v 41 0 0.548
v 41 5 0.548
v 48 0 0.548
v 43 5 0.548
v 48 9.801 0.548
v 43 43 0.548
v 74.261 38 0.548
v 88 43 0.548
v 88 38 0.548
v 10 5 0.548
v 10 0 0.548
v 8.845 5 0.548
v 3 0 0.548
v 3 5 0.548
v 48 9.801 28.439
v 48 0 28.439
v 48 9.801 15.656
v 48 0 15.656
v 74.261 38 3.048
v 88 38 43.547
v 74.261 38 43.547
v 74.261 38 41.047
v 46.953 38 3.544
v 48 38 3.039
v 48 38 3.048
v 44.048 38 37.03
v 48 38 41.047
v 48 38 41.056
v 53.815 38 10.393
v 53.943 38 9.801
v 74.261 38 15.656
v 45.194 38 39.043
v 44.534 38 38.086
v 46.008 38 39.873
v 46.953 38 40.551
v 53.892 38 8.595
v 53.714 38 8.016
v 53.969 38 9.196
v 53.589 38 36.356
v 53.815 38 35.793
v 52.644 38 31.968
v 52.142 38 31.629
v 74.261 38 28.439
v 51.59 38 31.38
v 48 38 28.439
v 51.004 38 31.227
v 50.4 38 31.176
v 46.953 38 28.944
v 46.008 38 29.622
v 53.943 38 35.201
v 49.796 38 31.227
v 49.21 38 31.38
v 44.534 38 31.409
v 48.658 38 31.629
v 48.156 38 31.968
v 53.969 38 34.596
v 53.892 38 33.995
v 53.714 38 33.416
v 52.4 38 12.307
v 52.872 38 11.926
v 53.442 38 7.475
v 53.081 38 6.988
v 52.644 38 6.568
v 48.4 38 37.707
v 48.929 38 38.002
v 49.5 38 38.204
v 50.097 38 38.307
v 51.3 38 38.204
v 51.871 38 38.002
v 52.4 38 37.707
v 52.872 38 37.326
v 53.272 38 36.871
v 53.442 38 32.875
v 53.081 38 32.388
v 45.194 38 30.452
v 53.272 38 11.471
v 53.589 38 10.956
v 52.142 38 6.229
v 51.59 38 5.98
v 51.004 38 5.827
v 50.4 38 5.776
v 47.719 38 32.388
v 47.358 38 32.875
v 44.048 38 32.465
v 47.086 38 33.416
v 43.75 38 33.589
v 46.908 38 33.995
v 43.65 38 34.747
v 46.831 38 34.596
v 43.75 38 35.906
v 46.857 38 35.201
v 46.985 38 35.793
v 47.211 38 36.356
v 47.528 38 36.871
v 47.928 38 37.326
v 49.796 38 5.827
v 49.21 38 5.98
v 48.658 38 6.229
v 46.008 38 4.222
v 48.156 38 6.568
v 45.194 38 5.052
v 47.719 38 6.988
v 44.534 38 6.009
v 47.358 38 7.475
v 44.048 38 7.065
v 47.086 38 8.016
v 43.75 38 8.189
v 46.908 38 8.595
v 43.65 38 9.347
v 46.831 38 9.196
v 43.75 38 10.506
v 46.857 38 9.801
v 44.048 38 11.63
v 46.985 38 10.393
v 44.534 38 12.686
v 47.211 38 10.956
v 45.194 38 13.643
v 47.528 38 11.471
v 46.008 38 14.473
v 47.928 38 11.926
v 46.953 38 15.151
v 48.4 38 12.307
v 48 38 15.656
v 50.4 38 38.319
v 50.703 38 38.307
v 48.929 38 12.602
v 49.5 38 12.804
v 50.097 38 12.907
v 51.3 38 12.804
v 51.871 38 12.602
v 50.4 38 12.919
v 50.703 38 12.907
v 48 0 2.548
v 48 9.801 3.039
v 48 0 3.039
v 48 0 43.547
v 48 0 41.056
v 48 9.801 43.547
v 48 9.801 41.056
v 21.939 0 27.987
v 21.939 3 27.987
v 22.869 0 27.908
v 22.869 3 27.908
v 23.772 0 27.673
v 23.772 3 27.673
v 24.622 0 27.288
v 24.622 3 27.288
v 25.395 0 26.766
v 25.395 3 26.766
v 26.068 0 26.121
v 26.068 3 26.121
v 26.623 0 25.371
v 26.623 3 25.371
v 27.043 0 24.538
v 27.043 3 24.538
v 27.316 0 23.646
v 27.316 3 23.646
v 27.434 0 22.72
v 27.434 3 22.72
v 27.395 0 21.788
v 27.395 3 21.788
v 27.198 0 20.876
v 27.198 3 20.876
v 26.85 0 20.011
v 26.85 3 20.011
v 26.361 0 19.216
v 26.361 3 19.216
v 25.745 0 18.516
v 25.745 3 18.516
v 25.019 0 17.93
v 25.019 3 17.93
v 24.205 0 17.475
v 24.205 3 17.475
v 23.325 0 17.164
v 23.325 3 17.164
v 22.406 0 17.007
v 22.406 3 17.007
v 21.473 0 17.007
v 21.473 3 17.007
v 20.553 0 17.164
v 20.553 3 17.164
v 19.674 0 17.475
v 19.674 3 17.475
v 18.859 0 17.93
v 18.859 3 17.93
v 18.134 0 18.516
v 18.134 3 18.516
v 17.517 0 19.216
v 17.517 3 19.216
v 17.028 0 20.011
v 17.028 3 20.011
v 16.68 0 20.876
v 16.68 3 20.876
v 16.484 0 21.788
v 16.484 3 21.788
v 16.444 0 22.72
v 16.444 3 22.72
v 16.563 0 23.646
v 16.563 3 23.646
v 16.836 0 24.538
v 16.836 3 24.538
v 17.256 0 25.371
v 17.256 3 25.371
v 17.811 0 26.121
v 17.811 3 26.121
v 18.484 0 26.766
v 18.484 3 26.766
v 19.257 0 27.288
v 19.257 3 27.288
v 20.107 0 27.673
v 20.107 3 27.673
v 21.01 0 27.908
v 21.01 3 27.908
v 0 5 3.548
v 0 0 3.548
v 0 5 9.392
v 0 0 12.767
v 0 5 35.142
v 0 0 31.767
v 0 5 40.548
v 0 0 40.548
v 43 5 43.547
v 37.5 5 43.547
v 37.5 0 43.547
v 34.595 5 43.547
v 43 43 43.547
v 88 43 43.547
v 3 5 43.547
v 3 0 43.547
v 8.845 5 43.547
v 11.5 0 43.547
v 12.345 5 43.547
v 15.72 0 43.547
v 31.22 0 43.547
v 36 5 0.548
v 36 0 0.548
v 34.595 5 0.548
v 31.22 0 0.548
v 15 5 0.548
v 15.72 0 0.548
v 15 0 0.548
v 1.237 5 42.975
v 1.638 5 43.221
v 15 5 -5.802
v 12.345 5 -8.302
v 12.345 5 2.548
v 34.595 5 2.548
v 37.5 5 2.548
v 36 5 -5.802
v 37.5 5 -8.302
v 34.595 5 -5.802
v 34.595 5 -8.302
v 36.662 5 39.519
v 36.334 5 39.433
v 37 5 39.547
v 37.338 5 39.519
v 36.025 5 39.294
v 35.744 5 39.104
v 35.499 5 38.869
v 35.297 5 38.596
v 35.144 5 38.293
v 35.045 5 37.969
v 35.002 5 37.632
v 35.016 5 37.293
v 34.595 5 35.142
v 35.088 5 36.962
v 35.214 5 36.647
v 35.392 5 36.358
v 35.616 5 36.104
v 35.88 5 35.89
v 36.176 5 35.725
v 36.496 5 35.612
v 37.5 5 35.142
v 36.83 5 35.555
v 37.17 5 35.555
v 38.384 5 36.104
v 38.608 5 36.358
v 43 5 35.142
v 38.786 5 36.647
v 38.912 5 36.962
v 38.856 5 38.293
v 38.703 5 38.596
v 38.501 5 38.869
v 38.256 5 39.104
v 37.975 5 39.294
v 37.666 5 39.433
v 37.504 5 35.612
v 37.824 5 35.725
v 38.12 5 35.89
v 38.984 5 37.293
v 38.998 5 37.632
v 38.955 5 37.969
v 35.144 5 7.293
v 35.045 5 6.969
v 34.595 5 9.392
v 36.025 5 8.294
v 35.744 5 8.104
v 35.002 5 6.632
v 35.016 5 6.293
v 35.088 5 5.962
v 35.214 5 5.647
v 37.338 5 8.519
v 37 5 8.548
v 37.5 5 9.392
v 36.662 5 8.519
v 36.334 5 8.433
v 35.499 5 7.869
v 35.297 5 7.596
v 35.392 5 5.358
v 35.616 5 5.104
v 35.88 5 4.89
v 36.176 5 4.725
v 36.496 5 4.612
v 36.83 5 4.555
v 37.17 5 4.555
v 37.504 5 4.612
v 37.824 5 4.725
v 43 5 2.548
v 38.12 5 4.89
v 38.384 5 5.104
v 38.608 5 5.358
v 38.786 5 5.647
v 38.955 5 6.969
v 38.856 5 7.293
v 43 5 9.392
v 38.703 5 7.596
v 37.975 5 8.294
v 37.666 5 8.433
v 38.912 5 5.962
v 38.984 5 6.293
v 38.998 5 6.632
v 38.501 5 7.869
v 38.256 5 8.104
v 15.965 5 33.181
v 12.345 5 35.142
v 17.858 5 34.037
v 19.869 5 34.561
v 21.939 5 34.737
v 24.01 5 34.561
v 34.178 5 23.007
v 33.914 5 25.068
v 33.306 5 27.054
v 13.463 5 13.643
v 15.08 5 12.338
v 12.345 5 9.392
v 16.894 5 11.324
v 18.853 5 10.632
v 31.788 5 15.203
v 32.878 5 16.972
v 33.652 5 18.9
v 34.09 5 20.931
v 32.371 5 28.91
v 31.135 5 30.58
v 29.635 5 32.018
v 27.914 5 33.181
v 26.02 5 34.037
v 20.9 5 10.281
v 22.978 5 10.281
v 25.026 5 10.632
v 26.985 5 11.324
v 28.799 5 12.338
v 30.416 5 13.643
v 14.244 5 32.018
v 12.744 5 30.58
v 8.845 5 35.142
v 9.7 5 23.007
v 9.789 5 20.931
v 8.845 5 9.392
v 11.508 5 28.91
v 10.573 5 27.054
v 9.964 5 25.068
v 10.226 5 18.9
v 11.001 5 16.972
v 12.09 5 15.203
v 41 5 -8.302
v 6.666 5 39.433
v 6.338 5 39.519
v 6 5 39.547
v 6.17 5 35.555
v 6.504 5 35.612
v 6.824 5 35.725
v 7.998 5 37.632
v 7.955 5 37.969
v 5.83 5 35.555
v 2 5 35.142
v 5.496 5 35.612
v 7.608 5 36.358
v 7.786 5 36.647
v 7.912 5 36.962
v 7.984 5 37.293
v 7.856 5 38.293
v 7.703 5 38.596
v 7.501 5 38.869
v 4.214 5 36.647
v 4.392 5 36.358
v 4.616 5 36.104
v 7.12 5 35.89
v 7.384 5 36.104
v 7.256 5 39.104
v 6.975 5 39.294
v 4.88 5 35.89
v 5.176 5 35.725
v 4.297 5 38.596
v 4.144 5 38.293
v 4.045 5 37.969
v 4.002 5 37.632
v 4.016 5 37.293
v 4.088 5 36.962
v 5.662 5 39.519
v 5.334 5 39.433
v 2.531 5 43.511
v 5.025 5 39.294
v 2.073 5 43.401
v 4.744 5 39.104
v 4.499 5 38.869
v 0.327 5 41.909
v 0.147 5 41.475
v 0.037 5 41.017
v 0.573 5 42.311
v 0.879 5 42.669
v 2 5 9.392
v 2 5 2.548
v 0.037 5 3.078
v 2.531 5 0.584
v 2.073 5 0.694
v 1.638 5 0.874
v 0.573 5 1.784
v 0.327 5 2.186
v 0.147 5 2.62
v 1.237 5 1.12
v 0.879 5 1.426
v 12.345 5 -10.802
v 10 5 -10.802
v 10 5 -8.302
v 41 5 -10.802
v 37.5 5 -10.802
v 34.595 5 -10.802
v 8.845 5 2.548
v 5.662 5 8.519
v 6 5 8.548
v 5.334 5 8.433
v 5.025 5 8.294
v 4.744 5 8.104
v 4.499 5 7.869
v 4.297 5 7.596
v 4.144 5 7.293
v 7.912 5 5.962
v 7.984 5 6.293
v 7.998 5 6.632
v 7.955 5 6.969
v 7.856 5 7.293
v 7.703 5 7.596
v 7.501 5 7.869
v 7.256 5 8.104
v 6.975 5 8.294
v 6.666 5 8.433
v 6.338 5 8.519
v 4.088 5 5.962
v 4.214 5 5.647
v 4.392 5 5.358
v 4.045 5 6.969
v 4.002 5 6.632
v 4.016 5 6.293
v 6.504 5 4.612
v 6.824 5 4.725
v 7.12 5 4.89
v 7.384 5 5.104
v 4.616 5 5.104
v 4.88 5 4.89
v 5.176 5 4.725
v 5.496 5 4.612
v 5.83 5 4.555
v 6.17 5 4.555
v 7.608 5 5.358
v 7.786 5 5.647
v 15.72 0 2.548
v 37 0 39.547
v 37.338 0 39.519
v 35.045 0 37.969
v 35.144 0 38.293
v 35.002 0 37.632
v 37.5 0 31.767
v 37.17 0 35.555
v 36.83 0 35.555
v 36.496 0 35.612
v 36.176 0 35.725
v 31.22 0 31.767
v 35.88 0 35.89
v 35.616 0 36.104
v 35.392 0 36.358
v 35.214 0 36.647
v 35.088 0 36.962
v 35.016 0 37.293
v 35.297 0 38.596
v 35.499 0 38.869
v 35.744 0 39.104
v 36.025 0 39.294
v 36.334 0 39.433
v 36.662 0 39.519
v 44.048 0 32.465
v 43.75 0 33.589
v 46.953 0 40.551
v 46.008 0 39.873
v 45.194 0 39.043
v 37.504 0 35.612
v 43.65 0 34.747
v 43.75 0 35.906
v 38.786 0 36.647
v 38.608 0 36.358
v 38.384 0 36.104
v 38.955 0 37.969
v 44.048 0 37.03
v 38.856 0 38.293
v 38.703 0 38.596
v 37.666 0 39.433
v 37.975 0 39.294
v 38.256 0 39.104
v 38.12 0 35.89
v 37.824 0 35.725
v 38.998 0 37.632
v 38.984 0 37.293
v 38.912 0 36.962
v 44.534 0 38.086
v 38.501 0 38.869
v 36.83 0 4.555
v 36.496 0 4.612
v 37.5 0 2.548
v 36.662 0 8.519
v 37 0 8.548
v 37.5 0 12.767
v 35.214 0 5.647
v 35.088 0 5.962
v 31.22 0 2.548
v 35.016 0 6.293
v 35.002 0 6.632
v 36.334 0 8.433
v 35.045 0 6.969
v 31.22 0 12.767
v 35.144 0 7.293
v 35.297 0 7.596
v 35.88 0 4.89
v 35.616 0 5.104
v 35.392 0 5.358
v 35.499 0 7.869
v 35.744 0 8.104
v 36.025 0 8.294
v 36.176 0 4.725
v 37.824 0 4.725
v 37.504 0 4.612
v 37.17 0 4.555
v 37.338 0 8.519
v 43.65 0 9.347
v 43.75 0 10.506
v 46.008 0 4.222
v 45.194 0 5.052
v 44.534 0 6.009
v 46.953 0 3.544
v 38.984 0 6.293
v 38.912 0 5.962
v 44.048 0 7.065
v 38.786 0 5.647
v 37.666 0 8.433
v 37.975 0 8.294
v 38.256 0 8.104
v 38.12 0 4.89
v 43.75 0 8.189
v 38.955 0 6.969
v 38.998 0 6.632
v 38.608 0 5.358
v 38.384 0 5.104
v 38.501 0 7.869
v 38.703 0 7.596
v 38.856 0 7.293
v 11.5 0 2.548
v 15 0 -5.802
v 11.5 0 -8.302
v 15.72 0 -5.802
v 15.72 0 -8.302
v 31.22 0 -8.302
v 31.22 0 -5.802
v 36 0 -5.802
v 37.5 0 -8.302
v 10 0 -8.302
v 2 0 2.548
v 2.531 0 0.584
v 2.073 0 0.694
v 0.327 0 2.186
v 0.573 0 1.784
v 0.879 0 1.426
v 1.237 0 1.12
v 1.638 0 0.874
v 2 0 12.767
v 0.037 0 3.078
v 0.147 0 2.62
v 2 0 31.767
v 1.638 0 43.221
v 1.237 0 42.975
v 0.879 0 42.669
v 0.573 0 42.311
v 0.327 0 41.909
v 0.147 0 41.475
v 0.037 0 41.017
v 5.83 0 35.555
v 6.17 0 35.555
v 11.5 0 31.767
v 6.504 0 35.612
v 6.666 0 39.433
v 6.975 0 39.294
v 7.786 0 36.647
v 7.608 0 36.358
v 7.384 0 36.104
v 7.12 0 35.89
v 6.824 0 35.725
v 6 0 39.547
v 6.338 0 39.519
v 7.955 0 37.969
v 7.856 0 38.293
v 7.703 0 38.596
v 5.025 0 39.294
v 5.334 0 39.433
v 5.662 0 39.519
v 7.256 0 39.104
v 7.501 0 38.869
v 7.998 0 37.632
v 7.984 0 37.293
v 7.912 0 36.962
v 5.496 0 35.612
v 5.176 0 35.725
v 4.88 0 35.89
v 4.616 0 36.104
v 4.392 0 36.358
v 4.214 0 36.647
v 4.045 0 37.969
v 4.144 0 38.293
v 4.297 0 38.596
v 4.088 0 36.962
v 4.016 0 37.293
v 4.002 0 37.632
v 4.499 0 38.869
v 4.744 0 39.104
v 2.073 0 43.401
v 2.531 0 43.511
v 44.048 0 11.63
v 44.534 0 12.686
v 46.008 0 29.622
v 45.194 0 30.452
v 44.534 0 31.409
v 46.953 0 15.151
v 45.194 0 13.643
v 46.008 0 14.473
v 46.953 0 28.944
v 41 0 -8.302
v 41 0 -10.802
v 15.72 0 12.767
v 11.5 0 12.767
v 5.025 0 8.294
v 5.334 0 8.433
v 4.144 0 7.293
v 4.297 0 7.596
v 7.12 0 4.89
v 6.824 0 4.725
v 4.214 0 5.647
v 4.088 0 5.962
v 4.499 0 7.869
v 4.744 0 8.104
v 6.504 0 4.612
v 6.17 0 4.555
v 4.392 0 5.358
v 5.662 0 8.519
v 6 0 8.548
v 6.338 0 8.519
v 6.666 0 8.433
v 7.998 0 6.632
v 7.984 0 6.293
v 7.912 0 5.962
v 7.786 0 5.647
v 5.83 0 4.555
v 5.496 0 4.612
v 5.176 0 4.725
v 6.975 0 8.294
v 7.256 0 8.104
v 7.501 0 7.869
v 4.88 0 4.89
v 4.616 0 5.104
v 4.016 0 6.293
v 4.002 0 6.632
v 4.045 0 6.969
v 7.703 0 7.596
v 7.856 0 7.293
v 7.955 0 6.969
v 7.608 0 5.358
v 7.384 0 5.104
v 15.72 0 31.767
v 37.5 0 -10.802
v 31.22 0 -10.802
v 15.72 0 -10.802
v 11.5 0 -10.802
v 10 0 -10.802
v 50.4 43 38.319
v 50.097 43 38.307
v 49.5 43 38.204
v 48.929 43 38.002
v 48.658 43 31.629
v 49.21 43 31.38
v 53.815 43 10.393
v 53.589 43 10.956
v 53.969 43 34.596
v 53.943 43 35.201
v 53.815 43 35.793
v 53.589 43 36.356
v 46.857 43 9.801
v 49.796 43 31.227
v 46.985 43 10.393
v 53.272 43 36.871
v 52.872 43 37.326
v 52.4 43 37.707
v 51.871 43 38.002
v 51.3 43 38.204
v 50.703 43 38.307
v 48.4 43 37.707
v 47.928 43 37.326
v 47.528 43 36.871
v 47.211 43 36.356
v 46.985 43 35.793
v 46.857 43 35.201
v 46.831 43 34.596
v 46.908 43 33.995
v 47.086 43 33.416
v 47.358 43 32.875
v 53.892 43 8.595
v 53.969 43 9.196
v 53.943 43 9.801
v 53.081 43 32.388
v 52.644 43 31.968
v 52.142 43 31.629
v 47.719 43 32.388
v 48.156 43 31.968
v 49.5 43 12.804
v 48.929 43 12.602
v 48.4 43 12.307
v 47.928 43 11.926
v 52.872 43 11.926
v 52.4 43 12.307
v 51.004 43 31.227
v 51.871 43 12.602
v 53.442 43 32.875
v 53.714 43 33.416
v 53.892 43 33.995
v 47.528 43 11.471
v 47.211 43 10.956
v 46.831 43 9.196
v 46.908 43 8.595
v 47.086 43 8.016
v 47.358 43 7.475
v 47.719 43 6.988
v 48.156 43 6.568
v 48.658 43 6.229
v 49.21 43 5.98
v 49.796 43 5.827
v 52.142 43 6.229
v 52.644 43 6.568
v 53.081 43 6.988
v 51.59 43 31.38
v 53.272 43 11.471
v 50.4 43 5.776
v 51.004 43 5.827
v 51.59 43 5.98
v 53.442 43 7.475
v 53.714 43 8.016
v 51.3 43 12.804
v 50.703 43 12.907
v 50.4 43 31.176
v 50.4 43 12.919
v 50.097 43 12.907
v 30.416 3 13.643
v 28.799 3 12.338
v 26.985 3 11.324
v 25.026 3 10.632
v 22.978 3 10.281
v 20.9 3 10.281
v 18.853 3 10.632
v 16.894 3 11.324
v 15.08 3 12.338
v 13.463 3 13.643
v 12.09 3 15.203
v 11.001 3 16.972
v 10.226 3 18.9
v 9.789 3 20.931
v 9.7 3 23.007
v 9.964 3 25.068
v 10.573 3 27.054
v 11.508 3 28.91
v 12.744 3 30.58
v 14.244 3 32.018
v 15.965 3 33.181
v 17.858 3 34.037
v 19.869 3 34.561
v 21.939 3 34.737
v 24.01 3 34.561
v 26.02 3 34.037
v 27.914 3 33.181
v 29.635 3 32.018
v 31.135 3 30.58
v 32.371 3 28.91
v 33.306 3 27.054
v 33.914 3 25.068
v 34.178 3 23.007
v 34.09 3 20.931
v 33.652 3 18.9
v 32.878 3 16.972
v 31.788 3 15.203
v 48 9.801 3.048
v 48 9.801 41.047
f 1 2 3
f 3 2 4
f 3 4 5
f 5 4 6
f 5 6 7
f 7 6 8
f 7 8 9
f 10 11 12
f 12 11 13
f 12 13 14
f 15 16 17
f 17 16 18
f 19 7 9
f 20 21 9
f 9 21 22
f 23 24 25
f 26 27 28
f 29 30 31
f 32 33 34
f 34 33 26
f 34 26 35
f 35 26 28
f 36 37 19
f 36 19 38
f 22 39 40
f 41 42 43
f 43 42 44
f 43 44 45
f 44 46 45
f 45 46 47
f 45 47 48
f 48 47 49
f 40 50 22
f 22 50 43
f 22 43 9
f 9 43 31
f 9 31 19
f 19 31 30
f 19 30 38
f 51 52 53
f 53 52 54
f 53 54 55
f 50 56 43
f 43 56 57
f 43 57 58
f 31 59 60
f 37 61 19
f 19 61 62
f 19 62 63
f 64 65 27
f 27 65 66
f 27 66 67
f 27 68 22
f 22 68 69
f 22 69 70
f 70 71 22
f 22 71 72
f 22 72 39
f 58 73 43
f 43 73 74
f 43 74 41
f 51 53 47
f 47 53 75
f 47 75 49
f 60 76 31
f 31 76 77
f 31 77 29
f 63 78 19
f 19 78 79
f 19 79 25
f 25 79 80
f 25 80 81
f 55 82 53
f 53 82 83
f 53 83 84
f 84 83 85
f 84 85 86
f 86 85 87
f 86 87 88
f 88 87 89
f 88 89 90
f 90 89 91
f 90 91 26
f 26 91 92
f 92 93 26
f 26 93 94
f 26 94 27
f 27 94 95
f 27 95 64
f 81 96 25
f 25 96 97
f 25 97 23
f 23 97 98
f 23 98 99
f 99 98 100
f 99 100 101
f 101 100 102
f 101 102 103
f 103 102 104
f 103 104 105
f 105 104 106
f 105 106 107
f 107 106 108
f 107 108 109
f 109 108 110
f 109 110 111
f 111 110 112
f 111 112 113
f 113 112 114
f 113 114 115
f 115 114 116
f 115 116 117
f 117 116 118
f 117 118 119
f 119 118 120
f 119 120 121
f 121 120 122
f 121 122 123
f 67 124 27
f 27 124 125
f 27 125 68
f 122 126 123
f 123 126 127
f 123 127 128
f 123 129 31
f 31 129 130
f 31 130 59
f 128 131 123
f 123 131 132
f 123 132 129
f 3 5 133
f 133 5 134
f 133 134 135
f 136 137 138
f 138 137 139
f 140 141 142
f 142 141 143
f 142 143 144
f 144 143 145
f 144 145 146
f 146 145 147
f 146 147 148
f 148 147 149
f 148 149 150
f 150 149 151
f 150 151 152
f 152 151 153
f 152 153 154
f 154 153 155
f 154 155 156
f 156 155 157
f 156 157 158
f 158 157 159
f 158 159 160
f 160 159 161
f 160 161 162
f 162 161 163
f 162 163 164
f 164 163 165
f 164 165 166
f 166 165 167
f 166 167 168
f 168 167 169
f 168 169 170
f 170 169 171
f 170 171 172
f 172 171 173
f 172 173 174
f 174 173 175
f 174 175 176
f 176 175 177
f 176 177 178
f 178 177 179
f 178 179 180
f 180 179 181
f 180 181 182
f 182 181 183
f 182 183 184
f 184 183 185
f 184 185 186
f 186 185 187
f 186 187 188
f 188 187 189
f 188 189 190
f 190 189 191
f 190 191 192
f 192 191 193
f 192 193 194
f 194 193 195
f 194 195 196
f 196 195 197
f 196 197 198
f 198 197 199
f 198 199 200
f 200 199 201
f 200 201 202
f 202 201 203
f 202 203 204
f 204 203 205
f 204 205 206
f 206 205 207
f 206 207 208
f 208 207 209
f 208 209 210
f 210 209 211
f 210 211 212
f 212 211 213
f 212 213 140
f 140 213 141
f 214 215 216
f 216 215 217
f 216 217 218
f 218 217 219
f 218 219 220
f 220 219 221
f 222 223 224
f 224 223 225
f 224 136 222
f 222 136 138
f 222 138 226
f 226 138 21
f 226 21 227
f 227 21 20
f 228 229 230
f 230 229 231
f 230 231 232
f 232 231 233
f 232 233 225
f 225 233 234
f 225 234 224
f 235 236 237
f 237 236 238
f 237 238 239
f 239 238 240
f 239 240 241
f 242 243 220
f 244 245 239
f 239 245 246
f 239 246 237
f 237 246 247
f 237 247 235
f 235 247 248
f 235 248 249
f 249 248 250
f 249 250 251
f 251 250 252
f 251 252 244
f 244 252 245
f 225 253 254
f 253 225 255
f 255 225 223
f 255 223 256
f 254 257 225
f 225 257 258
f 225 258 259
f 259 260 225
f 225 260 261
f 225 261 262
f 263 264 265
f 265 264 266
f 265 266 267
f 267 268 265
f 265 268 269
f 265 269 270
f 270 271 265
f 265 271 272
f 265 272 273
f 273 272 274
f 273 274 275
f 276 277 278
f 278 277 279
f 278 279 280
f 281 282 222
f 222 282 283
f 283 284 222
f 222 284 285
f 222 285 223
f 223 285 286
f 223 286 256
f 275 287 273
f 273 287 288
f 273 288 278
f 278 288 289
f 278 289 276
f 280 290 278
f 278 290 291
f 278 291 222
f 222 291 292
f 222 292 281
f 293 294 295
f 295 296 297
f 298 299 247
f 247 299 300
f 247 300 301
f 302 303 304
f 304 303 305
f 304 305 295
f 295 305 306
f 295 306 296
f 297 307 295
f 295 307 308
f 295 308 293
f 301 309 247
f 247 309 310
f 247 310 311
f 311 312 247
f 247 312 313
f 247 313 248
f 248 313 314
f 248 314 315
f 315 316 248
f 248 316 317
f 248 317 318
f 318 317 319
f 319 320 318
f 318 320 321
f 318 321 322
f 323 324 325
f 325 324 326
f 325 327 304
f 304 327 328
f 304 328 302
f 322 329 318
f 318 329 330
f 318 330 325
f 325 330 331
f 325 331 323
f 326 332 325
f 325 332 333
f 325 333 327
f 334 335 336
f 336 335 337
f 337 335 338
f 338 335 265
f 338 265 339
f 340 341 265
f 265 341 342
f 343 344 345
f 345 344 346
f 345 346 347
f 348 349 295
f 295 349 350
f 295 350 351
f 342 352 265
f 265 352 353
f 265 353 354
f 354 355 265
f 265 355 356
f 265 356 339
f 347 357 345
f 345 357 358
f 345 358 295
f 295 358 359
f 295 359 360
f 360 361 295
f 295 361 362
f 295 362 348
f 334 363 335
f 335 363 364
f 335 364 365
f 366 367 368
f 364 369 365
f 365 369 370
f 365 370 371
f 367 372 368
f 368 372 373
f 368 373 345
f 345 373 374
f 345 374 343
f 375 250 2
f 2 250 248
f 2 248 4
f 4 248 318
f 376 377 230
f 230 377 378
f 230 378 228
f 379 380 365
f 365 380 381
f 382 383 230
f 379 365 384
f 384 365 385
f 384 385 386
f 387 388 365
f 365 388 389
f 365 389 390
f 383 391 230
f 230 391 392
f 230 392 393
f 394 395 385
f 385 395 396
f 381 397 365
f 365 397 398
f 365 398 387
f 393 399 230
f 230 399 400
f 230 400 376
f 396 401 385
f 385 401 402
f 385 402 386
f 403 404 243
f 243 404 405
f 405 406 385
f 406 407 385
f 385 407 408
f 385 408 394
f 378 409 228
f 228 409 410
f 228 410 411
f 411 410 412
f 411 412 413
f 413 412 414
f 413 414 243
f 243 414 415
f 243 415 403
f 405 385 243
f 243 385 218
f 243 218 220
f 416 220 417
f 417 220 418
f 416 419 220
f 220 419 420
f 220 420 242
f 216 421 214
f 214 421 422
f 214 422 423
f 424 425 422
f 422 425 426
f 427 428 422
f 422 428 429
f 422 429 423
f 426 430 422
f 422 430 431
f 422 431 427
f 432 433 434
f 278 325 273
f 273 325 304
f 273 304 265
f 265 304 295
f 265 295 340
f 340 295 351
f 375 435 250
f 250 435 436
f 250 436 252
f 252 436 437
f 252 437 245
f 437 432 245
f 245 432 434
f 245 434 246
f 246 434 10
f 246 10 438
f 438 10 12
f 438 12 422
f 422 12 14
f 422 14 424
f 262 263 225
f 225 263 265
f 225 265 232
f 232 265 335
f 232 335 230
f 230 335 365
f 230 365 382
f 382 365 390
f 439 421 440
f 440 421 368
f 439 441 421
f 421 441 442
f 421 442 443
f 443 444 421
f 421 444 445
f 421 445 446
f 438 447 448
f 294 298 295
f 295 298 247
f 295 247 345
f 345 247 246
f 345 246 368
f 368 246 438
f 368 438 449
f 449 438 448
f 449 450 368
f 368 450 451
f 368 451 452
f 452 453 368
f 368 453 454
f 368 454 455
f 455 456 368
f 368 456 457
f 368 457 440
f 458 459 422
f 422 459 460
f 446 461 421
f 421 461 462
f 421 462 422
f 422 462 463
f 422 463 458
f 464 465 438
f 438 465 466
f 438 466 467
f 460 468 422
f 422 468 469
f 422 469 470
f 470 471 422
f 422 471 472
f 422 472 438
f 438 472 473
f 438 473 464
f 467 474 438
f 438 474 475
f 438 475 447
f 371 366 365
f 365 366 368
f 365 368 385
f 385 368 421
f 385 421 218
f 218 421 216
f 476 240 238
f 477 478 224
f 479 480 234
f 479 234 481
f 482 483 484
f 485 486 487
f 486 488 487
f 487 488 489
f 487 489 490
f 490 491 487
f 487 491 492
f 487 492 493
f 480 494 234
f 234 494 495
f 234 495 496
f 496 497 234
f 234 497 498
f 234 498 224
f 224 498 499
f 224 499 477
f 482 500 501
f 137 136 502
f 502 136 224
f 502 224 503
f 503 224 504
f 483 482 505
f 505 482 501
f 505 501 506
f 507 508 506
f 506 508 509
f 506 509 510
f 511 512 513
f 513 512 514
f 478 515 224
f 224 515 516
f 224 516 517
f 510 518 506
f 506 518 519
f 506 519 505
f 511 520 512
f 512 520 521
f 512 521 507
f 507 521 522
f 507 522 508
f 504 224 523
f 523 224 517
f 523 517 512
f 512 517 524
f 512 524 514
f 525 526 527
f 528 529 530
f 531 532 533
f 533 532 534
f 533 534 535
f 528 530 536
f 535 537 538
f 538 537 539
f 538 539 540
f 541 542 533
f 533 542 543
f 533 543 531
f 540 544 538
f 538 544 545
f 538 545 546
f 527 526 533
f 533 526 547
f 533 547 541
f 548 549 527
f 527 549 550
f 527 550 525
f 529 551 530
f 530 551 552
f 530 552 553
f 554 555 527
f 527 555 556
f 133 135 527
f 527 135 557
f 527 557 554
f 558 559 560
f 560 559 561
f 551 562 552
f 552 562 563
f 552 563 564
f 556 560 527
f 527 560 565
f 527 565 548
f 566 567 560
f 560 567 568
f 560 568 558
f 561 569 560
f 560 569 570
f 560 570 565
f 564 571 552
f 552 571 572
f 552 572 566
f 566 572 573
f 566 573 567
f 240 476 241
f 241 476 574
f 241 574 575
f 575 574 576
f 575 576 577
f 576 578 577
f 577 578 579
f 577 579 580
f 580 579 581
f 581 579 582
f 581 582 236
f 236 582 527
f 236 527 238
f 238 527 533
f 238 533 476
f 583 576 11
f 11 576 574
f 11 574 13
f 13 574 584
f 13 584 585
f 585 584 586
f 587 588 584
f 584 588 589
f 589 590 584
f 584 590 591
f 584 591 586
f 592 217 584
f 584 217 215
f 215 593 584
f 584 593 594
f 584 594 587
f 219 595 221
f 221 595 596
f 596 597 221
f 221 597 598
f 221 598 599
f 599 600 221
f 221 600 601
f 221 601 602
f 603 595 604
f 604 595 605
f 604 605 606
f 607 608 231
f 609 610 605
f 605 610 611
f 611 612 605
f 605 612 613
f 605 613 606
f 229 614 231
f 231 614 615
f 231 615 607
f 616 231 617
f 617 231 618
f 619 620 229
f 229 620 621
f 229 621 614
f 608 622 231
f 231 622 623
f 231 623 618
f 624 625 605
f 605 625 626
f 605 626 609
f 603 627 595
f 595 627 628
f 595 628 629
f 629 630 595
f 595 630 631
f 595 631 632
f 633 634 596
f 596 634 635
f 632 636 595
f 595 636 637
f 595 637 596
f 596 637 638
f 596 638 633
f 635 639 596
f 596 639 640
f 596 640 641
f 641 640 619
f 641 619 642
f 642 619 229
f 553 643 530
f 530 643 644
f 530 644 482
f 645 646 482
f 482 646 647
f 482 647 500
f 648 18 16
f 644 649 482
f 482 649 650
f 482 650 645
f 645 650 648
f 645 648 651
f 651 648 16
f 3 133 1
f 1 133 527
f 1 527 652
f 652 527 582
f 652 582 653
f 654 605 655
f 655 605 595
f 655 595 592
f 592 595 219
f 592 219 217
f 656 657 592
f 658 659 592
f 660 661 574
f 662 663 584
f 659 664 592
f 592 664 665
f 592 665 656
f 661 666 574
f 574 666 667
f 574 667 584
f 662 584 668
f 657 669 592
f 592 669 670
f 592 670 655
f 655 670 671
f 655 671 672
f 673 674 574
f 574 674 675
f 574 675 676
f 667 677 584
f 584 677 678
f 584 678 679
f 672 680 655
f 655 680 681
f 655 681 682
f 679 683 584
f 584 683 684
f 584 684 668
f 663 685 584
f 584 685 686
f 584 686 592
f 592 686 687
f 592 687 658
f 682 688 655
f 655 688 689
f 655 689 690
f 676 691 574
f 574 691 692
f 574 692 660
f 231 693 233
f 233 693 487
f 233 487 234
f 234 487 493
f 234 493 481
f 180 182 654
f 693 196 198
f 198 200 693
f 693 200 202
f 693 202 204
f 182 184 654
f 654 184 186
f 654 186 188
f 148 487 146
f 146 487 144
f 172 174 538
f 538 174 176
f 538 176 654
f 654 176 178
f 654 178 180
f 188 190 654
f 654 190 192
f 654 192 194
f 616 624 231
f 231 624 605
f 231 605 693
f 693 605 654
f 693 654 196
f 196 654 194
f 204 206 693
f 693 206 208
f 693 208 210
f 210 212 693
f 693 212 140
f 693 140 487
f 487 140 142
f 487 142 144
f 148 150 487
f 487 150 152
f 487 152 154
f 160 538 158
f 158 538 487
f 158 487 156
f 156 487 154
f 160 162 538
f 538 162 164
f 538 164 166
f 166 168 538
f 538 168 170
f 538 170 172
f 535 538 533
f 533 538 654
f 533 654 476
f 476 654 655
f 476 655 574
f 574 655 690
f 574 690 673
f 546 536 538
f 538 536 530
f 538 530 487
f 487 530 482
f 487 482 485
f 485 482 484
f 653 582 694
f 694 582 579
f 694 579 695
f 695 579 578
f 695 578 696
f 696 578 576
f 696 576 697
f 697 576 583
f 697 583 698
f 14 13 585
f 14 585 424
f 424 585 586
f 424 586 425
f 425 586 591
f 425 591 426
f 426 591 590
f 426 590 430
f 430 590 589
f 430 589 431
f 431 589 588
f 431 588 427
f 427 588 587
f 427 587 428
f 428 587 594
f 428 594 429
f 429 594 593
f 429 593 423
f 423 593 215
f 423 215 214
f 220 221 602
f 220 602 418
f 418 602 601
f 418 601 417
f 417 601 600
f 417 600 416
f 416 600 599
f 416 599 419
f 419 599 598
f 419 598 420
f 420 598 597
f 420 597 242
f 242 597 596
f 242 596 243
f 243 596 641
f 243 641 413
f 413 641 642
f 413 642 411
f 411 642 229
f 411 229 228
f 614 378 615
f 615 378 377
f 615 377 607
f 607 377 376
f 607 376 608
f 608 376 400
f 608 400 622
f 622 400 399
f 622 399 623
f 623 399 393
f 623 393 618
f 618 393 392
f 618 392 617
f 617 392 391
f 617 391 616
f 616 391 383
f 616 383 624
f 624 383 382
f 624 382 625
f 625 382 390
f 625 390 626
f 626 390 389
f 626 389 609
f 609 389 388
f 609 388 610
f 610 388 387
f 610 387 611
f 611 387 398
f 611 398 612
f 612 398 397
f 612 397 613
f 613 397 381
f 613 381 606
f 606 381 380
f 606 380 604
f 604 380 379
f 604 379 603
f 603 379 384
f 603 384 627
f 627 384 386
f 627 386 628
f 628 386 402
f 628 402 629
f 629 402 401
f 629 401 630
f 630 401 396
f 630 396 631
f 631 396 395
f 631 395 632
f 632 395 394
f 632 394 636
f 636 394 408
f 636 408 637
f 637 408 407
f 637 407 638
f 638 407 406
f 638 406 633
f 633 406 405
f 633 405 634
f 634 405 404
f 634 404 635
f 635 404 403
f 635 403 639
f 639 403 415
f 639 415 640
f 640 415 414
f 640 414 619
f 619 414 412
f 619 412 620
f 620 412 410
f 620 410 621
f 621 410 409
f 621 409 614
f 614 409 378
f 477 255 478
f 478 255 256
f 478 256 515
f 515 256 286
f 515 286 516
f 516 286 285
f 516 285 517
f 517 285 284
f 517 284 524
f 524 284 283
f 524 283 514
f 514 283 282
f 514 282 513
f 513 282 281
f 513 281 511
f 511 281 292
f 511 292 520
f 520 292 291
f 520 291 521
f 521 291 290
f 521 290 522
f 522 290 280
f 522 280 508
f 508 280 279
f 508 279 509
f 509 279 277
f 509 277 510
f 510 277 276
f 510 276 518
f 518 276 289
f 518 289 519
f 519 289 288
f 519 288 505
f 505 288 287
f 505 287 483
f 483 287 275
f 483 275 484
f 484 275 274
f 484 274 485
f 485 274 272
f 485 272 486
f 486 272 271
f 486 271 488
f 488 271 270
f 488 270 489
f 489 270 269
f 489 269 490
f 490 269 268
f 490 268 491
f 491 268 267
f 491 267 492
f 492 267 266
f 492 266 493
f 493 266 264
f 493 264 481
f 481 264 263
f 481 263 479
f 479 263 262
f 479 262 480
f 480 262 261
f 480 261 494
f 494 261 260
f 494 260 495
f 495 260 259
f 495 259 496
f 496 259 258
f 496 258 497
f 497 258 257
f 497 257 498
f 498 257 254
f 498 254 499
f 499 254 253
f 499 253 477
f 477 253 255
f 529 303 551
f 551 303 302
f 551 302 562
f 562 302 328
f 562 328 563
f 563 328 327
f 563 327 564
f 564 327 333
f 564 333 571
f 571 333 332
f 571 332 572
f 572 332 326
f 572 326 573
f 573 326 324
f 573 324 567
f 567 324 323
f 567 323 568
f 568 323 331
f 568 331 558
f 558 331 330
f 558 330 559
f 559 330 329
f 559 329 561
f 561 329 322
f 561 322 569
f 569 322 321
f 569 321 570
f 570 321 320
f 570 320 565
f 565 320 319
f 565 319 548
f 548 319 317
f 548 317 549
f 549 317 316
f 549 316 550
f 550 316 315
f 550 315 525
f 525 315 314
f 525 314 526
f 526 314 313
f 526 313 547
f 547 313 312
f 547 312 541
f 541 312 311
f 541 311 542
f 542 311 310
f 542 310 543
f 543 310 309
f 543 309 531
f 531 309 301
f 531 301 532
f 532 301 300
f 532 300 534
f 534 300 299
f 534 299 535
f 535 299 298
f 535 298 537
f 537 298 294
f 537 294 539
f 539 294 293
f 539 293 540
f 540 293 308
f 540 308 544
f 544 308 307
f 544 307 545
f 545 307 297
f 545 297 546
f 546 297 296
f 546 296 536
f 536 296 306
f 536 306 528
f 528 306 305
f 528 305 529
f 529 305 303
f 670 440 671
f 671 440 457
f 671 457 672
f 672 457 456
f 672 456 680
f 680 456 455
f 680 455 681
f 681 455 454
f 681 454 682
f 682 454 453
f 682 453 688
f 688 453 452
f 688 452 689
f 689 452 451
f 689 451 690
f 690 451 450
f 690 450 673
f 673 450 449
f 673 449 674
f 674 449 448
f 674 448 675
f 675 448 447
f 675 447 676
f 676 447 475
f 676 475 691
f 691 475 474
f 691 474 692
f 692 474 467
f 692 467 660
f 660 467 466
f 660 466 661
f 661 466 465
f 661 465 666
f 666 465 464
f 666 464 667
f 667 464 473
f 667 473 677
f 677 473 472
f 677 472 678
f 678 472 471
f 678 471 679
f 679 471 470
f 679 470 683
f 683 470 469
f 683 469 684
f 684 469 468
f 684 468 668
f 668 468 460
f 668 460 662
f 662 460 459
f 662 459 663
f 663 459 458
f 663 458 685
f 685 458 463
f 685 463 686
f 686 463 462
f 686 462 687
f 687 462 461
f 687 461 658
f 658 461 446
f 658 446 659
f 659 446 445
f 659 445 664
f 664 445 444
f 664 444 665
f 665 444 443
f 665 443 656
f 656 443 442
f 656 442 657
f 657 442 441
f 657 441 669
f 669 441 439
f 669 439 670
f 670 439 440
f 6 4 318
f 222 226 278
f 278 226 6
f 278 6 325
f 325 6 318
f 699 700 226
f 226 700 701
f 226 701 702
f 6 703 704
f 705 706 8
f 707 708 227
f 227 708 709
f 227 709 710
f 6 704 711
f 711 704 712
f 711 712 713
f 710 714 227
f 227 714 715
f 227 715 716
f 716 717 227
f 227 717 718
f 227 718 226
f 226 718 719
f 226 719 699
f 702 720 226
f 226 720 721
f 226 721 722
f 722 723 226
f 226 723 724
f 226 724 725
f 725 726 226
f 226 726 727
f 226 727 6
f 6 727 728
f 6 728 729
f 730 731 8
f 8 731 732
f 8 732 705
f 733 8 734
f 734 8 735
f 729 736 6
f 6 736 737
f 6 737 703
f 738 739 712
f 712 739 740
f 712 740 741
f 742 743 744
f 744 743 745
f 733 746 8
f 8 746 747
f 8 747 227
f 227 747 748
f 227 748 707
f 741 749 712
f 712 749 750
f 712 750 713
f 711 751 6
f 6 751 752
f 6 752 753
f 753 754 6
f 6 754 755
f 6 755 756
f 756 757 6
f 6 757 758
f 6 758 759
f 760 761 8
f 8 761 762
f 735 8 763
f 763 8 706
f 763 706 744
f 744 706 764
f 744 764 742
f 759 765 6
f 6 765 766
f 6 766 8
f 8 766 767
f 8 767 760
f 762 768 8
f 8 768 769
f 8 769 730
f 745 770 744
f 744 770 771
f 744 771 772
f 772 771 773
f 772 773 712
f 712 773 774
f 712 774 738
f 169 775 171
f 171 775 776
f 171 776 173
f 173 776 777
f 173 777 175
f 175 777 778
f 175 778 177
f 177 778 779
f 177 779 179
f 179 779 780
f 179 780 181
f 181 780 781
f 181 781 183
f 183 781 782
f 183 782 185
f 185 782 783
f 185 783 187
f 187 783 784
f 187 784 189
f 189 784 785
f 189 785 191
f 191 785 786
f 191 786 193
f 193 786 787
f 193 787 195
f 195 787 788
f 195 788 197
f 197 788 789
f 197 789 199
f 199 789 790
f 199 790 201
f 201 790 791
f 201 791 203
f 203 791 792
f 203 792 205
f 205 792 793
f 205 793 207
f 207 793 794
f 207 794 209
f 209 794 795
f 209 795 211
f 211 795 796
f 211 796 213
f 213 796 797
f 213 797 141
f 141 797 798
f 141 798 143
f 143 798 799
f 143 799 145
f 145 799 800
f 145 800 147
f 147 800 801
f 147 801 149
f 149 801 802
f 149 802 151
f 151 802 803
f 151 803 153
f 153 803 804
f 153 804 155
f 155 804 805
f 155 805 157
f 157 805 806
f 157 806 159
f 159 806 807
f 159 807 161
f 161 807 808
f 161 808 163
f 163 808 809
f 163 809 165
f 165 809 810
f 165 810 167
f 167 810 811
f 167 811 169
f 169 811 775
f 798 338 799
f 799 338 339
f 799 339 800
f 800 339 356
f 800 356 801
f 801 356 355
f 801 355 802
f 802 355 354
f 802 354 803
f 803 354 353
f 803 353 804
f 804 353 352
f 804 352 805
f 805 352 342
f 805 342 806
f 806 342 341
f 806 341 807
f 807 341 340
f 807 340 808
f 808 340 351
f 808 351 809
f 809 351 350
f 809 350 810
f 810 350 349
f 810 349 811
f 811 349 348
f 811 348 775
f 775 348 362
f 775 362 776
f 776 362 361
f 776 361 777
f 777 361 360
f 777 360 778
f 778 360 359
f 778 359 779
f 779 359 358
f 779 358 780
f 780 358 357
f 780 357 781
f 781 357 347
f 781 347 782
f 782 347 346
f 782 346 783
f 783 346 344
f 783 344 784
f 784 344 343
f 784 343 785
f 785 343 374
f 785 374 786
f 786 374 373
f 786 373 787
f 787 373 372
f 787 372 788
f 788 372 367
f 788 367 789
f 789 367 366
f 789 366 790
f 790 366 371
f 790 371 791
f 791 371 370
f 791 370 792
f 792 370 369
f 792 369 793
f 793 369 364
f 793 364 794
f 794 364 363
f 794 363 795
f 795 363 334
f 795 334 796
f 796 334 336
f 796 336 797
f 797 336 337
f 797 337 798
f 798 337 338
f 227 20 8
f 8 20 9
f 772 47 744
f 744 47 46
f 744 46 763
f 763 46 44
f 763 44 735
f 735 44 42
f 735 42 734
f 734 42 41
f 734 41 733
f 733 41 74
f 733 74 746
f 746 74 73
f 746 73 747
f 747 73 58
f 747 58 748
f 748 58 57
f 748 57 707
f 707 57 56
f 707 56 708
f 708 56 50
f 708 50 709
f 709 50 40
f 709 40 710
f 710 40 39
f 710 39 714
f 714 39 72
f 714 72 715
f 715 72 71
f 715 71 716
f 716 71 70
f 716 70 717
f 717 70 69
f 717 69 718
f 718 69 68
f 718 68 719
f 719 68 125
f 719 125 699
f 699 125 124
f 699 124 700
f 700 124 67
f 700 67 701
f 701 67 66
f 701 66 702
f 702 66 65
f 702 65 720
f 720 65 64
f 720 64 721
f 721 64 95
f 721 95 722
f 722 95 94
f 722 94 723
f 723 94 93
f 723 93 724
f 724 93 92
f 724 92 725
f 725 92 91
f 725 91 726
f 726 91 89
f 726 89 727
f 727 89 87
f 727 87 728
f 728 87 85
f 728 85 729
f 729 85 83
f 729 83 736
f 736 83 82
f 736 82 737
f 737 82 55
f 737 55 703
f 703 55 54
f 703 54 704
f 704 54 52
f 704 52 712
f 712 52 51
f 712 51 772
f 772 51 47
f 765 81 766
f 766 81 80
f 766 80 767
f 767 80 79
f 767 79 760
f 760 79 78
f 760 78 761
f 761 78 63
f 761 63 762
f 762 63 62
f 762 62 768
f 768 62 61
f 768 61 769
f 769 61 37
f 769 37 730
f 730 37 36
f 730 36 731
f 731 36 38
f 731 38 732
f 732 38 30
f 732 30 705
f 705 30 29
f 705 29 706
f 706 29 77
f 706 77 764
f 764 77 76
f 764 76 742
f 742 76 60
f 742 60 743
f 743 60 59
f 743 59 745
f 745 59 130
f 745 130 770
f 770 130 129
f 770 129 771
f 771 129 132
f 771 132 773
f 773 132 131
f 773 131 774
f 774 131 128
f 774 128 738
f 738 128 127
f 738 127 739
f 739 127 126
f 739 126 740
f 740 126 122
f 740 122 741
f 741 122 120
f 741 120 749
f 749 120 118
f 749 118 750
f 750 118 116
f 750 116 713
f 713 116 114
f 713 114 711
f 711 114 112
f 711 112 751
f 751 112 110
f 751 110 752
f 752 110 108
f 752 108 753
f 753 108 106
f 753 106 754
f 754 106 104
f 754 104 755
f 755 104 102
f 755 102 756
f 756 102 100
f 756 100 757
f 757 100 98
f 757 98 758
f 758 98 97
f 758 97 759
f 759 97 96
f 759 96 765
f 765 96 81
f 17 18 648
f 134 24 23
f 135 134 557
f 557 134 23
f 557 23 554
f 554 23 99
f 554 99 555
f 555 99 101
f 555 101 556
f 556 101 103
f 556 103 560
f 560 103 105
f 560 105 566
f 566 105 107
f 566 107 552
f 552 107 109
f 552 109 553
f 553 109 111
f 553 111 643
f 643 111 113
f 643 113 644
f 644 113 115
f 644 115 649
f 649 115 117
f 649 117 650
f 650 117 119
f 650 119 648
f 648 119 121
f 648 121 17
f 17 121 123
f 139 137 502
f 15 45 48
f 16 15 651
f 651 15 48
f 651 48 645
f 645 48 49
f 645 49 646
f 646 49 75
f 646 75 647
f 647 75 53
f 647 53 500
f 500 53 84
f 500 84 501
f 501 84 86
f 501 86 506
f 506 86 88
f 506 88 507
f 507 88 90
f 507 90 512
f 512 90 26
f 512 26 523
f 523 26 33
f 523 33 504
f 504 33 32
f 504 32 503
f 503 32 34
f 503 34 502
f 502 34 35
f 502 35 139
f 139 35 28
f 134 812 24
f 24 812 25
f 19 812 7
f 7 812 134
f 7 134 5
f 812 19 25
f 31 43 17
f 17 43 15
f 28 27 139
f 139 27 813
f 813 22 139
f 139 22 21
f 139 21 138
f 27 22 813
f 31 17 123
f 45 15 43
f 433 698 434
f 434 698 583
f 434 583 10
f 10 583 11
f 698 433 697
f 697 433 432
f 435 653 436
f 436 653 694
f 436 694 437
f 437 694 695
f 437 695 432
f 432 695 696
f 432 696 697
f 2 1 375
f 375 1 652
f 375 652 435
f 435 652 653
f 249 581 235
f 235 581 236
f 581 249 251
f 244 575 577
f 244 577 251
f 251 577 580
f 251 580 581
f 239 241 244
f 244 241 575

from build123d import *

# Parameters (mm, degrees)
SKETCH1_W                 = 43
SKETCH1_H                 = 43
BOSS_EXTRUDE1_DEPTH       = 5
FILLET1_R                 = 3
F_4_0MM_DOWEL_HOLE1_D     = 4
F_4_0MM_DOWEL_HOLE1_DEPTH = 10
F_4_0MM_DOWEL_HOLE1_TIP   = 1.201721238
SKETCH5_R                 = 5.5
CUT_EXTRUDE1_DEPTH        = 5
SKETCH6_W                 = 5
SKETCH6_H                 = 43
BOSS_EXTRUDE2_DEPTH       = 38
BOSS_EXTRUDE2_DEPTH_BACK  = 5
CUT_EXTRUDE4_START        = -5
SKETCH11_R                = 12.25
CUT_EXTRUDE4_DEPTH        = 2
SKETCH12_W                = 43
SKETCH12_H                = 5
BOSS_EXTRUDE3_DEPTH       = 40
SKETCH13_R                = 3.571875
CUT_EXTRUDE5_DEPTH        = 10
SKETCH15_R                = 6.75
CUT_EXTRUDE6_DEPTH        = 38
BOSS_EXTRUDE4_DEPTH       = 2.5
LPATTERN1_COUNT           = 3
LPATTERN1_PITCH           = 20.25
BOSS_EXTRUDE5_DEPTH       = 5.141078
BOSS_EXTRUDE5_DEPTH_BACK  = 7.641078
BOSS_EXTRUDE6_DEPTH       = 5


with BuildPart() as part:
    # Sketch1 → Boss-Extrude1 (new body)
    with BuildSketch(Plane(origin=(0, 0, 0), x_dir=(1, 0, 0), z_dir=(0, 1, 0))):
        with Locations((21.5, -22.047500095)):
            Rectangle(SKETCH1_W, SKETCH1_H)
    extrude(amount=BOSS_EXTRUDE1_DEPTH)

    # Fillet1
    fillet1_edges = [part.edges().sort_by_distance(p)[0] for p in [
        (0, 2.5, 0.547500095),
        (0, 2.5, 43.547500095),
    ]]
    fillet(fillet1_edges, radius=FILLET1_R)

    # Ø4.0mm Dowel Hole1
    with Locations(Plane(origin=(0, 5, 0), x_dir=(1, 0, 0), z_dir=(0, 1, 0))):
        with Locations((6, -6.547500095), (37, -6.547500095), (37, -37.547500095), (6, -37.547500095)):
            Hole(F_4_0MM_DOWEL_HOLE1_D / 2, depth=F_4_0MM_DOWEL_HOLE1_DEPTH)
            with Locations((0, 0, -(F_4_0MM_DOWEL_HOLE1_DEPTH + F_4_0MM_DOWEL_HOLE1_TIP / 2))):  # 118° drill point
                Cone(0, F_4_0MM_DOWEL_HOLE1_D / 2, F_4_0MM_DOWEL_HOLE1_TIP, mode=Mode.SUBTRACT)

    # Sketch5 → Cut-Extrude1 (cut)
    with BuildSketch(Plane(origin=(0, 5, 0), x_dir=(1, 0, 0), z_dir=(0, 1, 0))):
        with Locations((21.939339828, -22.486839923)):
            Circle(SKETCH5_R)
    extrude(amount=-CUT_EXTRUDE1_DEPTH, mode=Mode.SUBTRACT)

    # Sketch6 → Boss-Extrude2 (add, two sides)
    with BuildSketch(Plane(origin=(0, 5, 0), x_dir=(1, 0, 0), z_dir=(0, 1, 0))) as boss_extrude2_sk:
        with Locations((45.5, -22.047500095)):
            Rectangle(SKETCH6_W, SKETCH6_H)
    extrude(amount=BOSS_EXTRUDE2_DEPTH)
    extrude(boss_extrude2_sk.sketch, amount=-BOSS_EXTRUDE2_DEPTH_BACK)

    # Sketch11 → Cut-Extrude4 (cut)
    with BuildSketch(Plane.XZ.offset(CUT_EXTRUDE4_START)):
        with Locations((21.939339828, 22.486839923)):
            Circle(SKETCH11_R)
    extrude(amount=CUT_EXTRUDE4_DEPTH, mode=Mode.SUBTRACT)

    # Sketch12 → Boss-Extrude3 (add)
    with BuildSketch(Plane(origin=(48, 0, 0), x_dir=(0, 0, -1), z_dir=(1, 0, 0))):
        with Locations((-22.047500095, 40.5)):
            Rectangle(SKETCH12_W, SKETCH12_H)
    extrude(amount=BOSS_EXTRUDE3_DEPTH)

    # Sketch13 → Cut-Extrude5 (cut)
    with BuildSketch(Plane(origin=(0, 38, 0), x_dir=(-1, 0, 0), z_dir=(0, -1, 0))):
        with Locations((-50.4, -9.347500095)):
            Circle(SKETCH13_R)
        with Locations((-50.4, -34.747500095)):
            Circle(SKETCH13_R)
    extrude(amount=-CUT_EXTRUDE5_DEPTH, mode=Mode.SUBTRACT)

    # Sketch15 → Cut-Extrude6 (cut)
    with BuildSketch(Plane.XZ.offset(-38)):
        with Locations((50.4, 9.347500095)):
            Circle(SKETCH15_R)
        with Locations((50.4, 34.747500095)):
            Circle(SKETCH15_R)
    extrude(amount=CUT_EXTRUDE6_DEPTH, mode=Mode.SUBTRACT)

    # Sketch16 → Boss-Extrude4 (add)
    with BuildSketch(Plane(origin=(0, 0, 0.547500095), x_dir=(-1, 0, 0), z_dir=(0, 0, -1))):
        Polygon((-48, 9.800798491), (-74.261330934, 38), (-48, 38), align=None)
    boss_extrude4 = extrude(amount=-BOSS_EXTRUDE4_DEPTH)

    # LPattern1: Boss-Extrude4 ×3
    with Locations(*[(0, 0, i * LPATTERN1_PITCH) for i in range(1, LPATTERN1_COUNT)]):
        add(boss_extrude4)

    # Sketch18 → Boss-Extrude5 (add, two sides)
    with BuildSketch(Plane(origin=(0, 0, 20.797500095), x_dir=(-1, 0, 0), z_dir=(0, 0, -1))) as boss_extrude5_sk:
        Polygon((-48, 38), (-48, 9.800798491), (-74.261330934, 38), align=None)
    extrude(amount=BOSS_EXTRUDE5_DEPTH)
    extrude(boss_extrude5_sk.sketch, amount=-BOSS_EXTRUDE5_DEPTH_BACK)

    # Sketch19 → Boss-Extrude6 (add)
    with BuildSketch(Plane(origin=(0, 0, 0), x_dir=(-1, 0, 0), z_dir=(0, -1, 0))):
        Polygon((-15, 5.802499905), (-36, 5.802499905), (-36, -0.547500095), (-41, -0.547500095), (-41, 10.802499905), (-10, 10.802499905), (-10, -0.547500095), (-15, -0.547500095), align=None)
    extrude(amount=-BOSS_EXTRUDE6_DEPTH)


solid = part.part
